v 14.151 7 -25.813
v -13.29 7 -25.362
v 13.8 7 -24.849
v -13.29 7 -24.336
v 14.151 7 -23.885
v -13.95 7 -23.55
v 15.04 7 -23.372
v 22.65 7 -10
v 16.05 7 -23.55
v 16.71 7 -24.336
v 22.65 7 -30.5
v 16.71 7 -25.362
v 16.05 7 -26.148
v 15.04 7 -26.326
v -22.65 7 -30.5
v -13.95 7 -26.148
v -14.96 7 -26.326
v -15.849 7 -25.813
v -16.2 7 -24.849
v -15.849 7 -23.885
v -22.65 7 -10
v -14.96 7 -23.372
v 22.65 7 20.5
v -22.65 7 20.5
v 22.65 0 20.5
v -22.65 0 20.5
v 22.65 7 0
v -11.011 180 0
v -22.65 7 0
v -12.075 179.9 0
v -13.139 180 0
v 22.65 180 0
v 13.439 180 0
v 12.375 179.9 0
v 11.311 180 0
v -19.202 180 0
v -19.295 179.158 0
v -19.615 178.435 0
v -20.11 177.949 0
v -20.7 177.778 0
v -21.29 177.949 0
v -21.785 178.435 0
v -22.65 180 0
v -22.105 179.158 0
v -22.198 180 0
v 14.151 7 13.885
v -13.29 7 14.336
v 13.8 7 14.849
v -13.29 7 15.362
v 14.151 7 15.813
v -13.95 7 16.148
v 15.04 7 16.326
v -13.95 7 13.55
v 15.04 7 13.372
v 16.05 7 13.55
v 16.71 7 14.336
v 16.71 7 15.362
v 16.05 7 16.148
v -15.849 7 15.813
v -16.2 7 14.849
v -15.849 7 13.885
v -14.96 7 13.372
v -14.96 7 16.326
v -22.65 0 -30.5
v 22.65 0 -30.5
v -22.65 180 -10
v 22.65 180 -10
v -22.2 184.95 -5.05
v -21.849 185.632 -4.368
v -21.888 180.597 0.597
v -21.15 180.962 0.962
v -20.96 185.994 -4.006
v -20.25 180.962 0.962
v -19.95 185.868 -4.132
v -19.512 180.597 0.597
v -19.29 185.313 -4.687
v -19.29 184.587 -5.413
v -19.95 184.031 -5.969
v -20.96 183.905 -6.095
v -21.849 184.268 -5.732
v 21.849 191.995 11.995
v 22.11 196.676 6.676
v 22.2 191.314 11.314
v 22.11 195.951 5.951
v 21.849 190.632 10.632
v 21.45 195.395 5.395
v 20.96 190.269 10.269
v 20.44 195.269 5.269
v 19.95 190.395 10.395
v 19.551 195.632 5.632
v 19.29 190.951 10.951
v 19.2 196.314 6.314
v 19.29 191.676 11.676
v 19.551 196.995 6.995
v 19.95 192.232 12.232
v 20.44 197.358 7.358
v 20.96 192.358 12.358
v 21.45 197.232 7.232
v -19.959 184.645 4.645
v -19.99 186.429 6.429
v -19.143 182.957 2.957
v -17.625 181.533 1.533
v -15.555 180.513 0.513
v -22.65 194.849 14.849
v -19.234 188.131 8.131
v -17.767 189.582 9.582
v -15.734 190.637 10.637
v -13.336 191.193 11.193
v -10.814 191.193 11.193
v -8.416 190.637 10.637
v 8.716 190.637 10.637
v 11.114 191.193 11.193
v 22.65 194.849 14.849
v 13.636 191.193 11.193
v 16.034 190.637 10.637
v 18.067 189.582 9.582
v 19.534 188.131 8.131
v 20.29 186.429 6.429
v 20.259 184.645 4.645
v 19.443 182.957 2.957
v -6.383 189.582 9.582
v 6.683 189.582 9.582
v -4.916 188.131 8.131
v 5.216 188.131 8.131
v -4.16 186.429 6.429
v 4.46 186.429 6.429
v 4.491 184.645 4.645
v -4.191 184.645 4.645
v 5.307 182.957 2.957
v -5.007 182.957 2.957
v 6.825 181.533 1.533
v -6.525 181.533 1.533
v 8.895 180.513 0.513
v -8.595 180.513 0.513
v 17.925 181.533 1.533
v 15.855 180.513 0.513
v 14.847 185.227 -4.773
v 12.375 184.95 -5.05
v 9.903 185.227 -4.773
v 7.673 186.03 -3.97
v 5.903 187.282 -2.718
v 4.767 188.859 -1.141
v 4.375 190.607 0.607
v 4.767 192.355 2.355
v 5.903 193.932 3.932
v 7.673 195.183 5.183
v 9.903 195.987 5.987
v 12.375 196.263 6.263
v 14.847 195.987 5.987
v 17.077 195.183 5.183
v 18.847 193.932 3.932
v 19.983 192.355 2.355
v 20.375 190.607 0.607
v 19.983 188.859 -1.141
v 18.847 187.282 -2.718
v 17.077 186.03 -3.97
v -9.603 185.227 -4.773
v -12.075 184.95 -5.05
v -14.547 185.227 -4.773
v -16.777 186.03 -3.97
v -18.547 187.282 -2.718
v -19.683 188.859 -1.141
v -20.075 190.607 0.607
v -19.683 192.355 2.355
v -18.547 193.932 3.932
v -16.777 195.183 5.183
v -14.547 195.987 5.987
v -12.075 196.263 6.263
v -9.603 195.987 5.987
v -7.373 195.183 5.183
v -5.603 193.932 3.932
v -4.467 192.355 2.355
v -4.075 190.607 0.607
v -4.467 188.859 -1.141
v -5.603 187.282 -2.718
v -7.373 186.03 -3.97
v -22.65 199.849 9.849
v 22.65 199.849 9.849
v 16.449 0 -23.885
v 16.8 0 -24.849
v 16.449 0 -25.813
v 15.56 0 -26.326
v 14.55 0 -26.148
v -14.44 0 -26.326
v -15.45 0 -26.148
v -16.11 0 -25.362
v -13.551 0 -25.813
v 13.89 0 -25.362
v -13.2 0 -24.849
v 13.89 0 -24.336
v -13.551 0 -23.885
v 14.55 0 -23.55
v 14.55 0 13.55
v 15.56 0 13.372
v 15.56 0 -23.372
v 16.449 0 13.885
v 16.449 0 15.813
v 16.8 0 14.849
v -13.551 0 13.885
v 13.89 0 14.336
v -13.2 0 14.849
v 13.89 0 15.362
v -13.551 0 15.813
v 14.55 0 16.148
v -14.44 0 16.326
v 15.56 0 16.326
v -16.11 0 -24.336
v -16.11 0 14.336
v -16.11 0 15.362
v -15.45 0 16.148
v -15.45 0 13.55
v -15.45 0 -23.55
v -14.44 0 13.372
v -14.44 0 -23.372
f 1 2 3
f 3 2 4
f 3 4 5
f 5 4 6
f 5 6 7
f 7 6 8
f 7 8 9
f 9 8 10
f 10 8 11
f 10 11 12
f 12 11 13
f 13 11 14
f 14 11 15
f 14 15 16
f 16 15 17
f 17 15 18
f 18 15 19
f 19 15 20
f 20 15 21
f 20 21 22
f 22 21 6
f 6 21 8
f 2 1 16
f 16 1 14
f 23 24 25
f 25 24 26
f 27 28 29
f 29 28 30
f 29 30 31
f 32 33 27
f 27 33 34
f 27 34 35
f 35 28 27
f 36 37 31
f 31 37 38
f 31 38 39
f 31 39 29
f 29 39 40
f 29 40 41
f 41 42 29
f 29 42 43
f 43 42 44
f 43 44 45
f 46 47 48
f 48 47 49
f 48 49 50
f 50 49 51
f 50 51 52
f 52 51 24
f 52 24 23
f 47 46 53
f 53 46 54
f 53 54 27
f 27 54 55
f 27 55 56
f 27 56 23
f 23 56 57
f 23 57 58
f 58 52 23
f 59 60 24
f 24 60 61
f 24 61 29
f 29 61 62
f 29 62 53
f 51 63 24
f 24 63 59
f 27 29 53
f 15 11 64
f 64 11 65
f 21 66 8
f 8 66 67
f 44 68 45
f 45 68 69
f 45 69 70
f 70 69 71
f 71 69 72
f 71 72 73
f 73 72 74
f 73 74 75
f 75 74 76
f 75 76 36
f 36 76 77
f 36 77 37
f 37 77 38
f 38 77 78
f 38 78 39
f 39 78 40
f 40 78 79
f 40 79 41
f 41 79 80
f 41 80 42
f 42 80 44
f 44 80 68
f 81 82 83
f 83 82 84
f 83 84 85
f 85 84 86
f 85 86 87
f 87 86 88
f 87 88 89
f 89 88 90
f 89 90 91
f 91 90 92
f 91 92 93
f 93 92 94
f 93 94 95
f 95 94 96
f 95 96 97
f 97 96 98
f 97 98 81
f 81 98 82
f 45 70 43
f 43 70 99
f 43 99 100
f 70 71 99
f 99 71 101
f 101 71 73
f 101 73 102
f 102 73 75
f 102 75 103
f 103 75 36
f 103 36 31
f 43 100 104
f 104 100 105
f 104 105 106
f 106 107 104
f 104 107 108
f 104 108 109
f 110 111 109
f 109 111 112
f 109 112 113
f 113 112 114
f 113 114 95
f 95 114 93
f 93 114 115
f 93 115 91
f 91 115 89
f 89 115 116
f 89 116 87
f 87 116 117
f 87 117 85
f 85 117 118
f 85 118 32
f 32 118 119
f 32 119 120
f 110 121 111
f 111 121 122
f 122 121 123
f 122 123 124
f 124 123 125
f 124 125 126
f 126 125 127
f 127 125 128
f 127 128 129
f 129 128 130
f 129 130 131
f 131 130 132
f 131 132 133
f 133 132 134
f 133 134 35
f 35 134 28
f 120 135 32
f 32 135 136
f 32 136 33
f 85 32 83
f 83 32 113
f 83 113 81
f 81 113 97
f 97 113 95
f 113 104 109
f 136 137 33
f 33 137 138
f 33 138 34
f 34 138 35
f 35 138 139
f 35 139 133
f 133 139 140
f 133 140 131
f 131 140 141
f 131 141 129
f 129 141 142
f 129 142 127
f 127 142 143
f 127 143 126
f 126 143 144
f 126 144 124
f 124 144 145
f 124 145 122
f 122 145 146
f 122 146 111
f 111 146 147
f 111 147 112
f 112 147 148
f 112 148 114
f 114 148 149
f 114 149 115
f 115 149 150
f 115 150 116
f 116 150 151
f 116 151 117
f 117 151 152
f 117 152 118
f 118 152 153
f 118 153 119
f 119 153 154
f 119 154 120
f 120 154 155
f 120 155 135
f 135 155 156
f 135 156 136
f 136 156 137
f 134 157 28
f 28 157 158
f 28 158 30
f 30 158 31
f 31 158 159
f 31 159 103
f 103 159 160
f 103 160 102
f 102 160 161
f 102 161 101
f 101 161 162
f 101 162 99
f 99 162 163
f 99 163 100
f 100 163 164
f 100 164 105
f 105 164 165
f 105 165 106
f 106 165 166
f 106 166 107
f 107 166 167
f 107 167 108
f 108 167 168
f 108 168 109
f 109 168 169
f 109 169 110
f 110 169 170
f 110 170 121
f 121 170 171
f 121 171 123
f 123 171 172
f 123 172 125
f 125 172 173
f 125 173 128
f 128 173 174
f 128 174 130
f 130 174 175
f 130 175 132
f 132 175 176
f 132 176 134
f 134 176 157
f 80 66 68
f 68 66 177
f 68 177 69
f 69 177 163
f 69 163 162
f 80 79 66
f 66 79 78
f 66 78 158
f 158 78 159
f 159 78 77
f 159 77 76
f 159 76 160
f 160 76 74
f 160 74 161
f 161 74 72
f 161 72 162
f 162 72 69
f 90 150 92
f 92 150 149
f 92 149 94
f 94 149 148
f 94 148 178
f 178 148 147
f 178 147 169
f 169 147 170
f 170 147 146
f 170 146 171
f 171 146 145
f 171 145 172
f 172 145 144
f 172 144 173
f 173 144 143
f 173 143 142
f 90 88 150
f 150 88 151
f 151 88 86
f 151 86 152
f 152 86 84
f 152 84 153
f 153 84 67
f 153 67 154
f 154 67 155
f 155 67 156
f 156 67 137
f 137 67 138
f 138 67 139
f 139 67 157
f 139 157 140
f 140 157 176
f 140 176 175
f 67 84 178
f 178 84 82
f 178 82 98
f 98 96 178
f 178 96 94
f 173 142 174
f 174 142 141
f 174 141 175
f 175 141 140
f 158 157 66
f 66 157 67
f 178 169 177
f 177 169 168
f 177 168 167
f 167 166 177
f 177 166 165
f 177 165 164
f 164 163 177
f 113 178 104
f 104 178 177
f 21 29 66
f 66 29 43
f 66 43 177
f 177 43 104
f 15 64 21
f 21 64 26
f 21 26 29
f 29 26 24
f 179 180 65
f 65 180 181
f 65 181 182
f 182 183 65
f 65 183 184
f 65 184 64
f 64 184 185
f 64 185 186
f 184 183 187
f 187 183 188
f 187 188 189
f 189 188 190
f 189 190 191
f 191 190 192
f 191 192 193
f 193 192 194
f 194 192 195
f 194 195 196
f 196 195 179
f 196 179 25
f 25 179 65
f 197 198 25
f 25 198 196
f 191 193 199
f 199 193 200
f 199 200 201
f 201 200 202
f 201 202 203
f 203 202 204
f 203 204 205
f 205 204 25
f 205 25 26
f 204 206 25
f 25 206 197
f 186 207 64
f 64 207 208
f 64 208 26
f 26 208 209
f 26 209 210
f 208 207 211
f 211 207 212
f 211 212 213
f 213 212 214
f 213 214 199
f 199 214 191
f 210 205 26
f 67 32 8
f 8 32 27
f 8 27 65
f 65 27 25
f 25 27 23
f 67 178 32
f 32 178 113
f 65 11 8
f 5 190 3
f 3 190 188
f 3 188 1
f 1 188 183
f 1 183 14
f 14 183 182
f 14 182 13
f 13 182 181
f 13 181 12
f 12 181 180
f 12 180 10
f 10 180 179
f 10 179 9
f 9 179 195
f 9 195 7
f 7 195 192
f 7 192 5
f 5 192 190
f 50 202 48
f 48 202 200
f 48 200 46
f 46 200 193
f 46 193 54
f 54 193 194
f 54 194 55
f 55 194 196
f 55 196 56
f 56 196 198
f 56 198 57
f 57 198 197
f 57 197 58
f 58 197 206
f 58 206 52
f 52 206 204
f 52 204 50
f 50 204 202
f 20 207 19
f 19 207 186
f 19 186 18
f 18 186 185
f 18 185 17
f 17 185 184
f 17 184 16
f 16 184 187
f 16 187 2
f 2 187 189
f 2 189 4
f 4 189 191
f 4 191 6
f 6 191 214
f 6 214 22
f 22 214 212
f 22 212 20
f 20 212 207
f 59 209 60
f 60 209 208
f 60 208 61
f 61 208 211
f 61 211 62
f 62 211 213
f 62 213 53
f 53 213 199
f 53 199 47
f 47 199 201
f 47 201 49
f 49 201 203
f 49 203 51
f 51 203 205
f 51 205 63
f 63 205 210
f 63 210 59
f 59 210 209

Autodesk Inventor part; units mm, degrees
ref_plane "YZ Plane" through (0, 0, 0) normal (1, 0, 0) x (0, 1, 0)
ref_plane "XZ Plane" through (0, 0, 0) normal (0, 1, 0) x (-1, 0, 0)
ref_plane "XY Plane" through (0, 0, 0) normal (0, 0, 1) x (1, 0, 0)
sketch "Boceto6" plane through (0, 0, 0) normal (1, 0, 0) x (0, 1, 0)
  line L0 (0, 0) -> (180, 0)
  line L1 (180, 0) -> (180, -10)
  line L2 (180, -10) -> (0, -10)
  line L3 (0, -10) -> (0, 0)
  dimension "d12" = 180
  dimension "d13" = 10
extrude "Extrusión3" add sketch "Boceto6" along normal mid plane 45.3
sketch "Boceto7" plane through (22.65, 0, 0) normal (1, 0, 0) x (0, 0, -1)
  line L0 (10, 0) -> (10, 180) projected
  line L1 (10, 180) -> (0, 180) projected
  line L2 (10, 180) -> (0, 180)
  line L3 (0, 180) -> (-14.8492, 194.8492)
  line L4 (10, 180) -> (-9.8492, 199.8492)
  line L5 (10, 180) -> (38.0711, 180) construction
  line L6 (-9.8492, 199.8492) -> (-14.8492, 194.8492)
  point P0 (0, 0)
  dimension "d16" = 21
  dimension "d17" = 135
  dimension "d18" = 135
extrude "Extrusión4" add sketch "Boceto7" against normal blind 45.3
sketch "Boceto8" plane through (22.65, 180, -10) normal (0, 0.7071, -0.7071) x (-1, 0, 0)
  circle A0 centre (10.275, 15) radius 8
  circle A1 centre (34.725, 15) radius 8
  line L0 (0, 0) -> (0, 28.0711) projected
  line L1 (45.3, 0) -> (0, 0) projected
  point P0 (22.65, -120.2082)
  dimension "d21" = 16
  dimension "d22" = 16
  dimension "d23" = 24.45
  dimension "d24" = 10.275
  dimension "d25" = 15
  dimension "d26" = 15
extrude "Extrusión5" cut sketch "Boceto8" against normal blind 8.25
sketch "Boceto11" plane through (22.65, 180, -10) normal (0, 0.7071, -0.7071) x (-1, 0, 0)
  circle A0 centre (1.95, 23.0711) radius 1.5
  line L0 (0, 0) -> (0, 28.0711) projected
  line L1 (0, 28.0711) -> (45.3, 28.0711) projected
  circle A1 centre (43.35, 7) radius 1.5
  line L2 (45.3, 28.0711) -> (45.3, 0) projected
  line L3 (45.3, 0) -> (0, 0) projected
  point P0 (22.65, -120.2082)
  point P1 (45.5, 0)
  dimension "d29" = 3
  dimension "d30" = 1.95
  dimension "d31" = 5
  dimension "d32" = 3
  dimension "d33" = 1.95
  dimension "d34" = 7
extrude "Extrusión6" cut sketch "Boceto11" against normal blind 12.5 contours A0 | A1
sketch "Boceto12" plane through (22.65, 0, -10) normal (0, 0, -1) x (-1, 0, 0)
  line L0 (0, 0) -> (0, 180) projected
  line L1 (0, 7) -> (45.3, 7)
  line L2 (45.3, 7) -> (45.3, 0)
  line L3 (45.3, 0) -> (0, 0)
  line L4 (0, 0) -> (0, 7)
  line L5 (0, 0) -> (45.3, 0) projected
  point P0 (22.65, 0)
  point P1 (22.65, 0)
  dimension "d37" = 7
  dimension "d38" = 0
extrude "Extrusión7" add sketch "Boceto12" along normal blind 20.5
sketch "Boceto13" plane through (-22.65, 0, 0) normal (0, 0, 1) x (1, 0, 0)
  line L0 (0, 0) -> (0, 180) projected
  line L1 (0, 7) -> (45.3, 7)
  line L2 (45.3, 7) -> (45.3, 0)
  line L3 (45.3, 0) -> (0, 0)
  line L4 (0, 0) -> (0, 7)
  line L5 (0, 0) -> (45.3, 0) projected
  point P0 (22.65, 0)
  dimension "d41" = 7
  dimension "d42" = 0
extrude "Extrusión8" add sketch "Boceto13" along normal blind 20.5
sketch "Boceto15" plane through (-22.65, 0, -30.5) normal (0, -1, 0) x (1, 0, 0)
  circle A0 centre (7.95, 45.3492) radius 1.5
  line L0 (45.3, 45.3492) -> (0, 45.3492) projected
  circle A1 centre (37.95, 45.3492) radius 1.5
  line L1 (0, 51) -> (45.3, 51) projected
  circle A2 centre (7.95, 5.6508) radius 1.5
  circle A3 centre (37.95, 5.6508) radius 1.5
  line L2 (45.3, 0) -> (0, 0) projected
  line L3 (45.3, 0) -> (45.3, 51) projected
  point P0 (22.65, 30.5)
  dimension "d45" = 3
  dimension "d46" = 3
  dimension "d47" = 5.6508
  dimension "d48" = 3
  dimension "d49" = 3
  dimension "d50" = 5.6508
  dimension "d51" = 5.6508
  dimension "d52" = 30
  dimension "d53" = 30
  dimension "d54" = -7.35
  dimension "d55" = -7.35
extrude "Extrusión9" cut sketch "Boceto15" against normal blind 20.5
equation "\"d50\" = d47"
equation "\"d51\" = d47"
equation "\"d55\" = d54"
properties part number "Soporte_Ultrasonido"
